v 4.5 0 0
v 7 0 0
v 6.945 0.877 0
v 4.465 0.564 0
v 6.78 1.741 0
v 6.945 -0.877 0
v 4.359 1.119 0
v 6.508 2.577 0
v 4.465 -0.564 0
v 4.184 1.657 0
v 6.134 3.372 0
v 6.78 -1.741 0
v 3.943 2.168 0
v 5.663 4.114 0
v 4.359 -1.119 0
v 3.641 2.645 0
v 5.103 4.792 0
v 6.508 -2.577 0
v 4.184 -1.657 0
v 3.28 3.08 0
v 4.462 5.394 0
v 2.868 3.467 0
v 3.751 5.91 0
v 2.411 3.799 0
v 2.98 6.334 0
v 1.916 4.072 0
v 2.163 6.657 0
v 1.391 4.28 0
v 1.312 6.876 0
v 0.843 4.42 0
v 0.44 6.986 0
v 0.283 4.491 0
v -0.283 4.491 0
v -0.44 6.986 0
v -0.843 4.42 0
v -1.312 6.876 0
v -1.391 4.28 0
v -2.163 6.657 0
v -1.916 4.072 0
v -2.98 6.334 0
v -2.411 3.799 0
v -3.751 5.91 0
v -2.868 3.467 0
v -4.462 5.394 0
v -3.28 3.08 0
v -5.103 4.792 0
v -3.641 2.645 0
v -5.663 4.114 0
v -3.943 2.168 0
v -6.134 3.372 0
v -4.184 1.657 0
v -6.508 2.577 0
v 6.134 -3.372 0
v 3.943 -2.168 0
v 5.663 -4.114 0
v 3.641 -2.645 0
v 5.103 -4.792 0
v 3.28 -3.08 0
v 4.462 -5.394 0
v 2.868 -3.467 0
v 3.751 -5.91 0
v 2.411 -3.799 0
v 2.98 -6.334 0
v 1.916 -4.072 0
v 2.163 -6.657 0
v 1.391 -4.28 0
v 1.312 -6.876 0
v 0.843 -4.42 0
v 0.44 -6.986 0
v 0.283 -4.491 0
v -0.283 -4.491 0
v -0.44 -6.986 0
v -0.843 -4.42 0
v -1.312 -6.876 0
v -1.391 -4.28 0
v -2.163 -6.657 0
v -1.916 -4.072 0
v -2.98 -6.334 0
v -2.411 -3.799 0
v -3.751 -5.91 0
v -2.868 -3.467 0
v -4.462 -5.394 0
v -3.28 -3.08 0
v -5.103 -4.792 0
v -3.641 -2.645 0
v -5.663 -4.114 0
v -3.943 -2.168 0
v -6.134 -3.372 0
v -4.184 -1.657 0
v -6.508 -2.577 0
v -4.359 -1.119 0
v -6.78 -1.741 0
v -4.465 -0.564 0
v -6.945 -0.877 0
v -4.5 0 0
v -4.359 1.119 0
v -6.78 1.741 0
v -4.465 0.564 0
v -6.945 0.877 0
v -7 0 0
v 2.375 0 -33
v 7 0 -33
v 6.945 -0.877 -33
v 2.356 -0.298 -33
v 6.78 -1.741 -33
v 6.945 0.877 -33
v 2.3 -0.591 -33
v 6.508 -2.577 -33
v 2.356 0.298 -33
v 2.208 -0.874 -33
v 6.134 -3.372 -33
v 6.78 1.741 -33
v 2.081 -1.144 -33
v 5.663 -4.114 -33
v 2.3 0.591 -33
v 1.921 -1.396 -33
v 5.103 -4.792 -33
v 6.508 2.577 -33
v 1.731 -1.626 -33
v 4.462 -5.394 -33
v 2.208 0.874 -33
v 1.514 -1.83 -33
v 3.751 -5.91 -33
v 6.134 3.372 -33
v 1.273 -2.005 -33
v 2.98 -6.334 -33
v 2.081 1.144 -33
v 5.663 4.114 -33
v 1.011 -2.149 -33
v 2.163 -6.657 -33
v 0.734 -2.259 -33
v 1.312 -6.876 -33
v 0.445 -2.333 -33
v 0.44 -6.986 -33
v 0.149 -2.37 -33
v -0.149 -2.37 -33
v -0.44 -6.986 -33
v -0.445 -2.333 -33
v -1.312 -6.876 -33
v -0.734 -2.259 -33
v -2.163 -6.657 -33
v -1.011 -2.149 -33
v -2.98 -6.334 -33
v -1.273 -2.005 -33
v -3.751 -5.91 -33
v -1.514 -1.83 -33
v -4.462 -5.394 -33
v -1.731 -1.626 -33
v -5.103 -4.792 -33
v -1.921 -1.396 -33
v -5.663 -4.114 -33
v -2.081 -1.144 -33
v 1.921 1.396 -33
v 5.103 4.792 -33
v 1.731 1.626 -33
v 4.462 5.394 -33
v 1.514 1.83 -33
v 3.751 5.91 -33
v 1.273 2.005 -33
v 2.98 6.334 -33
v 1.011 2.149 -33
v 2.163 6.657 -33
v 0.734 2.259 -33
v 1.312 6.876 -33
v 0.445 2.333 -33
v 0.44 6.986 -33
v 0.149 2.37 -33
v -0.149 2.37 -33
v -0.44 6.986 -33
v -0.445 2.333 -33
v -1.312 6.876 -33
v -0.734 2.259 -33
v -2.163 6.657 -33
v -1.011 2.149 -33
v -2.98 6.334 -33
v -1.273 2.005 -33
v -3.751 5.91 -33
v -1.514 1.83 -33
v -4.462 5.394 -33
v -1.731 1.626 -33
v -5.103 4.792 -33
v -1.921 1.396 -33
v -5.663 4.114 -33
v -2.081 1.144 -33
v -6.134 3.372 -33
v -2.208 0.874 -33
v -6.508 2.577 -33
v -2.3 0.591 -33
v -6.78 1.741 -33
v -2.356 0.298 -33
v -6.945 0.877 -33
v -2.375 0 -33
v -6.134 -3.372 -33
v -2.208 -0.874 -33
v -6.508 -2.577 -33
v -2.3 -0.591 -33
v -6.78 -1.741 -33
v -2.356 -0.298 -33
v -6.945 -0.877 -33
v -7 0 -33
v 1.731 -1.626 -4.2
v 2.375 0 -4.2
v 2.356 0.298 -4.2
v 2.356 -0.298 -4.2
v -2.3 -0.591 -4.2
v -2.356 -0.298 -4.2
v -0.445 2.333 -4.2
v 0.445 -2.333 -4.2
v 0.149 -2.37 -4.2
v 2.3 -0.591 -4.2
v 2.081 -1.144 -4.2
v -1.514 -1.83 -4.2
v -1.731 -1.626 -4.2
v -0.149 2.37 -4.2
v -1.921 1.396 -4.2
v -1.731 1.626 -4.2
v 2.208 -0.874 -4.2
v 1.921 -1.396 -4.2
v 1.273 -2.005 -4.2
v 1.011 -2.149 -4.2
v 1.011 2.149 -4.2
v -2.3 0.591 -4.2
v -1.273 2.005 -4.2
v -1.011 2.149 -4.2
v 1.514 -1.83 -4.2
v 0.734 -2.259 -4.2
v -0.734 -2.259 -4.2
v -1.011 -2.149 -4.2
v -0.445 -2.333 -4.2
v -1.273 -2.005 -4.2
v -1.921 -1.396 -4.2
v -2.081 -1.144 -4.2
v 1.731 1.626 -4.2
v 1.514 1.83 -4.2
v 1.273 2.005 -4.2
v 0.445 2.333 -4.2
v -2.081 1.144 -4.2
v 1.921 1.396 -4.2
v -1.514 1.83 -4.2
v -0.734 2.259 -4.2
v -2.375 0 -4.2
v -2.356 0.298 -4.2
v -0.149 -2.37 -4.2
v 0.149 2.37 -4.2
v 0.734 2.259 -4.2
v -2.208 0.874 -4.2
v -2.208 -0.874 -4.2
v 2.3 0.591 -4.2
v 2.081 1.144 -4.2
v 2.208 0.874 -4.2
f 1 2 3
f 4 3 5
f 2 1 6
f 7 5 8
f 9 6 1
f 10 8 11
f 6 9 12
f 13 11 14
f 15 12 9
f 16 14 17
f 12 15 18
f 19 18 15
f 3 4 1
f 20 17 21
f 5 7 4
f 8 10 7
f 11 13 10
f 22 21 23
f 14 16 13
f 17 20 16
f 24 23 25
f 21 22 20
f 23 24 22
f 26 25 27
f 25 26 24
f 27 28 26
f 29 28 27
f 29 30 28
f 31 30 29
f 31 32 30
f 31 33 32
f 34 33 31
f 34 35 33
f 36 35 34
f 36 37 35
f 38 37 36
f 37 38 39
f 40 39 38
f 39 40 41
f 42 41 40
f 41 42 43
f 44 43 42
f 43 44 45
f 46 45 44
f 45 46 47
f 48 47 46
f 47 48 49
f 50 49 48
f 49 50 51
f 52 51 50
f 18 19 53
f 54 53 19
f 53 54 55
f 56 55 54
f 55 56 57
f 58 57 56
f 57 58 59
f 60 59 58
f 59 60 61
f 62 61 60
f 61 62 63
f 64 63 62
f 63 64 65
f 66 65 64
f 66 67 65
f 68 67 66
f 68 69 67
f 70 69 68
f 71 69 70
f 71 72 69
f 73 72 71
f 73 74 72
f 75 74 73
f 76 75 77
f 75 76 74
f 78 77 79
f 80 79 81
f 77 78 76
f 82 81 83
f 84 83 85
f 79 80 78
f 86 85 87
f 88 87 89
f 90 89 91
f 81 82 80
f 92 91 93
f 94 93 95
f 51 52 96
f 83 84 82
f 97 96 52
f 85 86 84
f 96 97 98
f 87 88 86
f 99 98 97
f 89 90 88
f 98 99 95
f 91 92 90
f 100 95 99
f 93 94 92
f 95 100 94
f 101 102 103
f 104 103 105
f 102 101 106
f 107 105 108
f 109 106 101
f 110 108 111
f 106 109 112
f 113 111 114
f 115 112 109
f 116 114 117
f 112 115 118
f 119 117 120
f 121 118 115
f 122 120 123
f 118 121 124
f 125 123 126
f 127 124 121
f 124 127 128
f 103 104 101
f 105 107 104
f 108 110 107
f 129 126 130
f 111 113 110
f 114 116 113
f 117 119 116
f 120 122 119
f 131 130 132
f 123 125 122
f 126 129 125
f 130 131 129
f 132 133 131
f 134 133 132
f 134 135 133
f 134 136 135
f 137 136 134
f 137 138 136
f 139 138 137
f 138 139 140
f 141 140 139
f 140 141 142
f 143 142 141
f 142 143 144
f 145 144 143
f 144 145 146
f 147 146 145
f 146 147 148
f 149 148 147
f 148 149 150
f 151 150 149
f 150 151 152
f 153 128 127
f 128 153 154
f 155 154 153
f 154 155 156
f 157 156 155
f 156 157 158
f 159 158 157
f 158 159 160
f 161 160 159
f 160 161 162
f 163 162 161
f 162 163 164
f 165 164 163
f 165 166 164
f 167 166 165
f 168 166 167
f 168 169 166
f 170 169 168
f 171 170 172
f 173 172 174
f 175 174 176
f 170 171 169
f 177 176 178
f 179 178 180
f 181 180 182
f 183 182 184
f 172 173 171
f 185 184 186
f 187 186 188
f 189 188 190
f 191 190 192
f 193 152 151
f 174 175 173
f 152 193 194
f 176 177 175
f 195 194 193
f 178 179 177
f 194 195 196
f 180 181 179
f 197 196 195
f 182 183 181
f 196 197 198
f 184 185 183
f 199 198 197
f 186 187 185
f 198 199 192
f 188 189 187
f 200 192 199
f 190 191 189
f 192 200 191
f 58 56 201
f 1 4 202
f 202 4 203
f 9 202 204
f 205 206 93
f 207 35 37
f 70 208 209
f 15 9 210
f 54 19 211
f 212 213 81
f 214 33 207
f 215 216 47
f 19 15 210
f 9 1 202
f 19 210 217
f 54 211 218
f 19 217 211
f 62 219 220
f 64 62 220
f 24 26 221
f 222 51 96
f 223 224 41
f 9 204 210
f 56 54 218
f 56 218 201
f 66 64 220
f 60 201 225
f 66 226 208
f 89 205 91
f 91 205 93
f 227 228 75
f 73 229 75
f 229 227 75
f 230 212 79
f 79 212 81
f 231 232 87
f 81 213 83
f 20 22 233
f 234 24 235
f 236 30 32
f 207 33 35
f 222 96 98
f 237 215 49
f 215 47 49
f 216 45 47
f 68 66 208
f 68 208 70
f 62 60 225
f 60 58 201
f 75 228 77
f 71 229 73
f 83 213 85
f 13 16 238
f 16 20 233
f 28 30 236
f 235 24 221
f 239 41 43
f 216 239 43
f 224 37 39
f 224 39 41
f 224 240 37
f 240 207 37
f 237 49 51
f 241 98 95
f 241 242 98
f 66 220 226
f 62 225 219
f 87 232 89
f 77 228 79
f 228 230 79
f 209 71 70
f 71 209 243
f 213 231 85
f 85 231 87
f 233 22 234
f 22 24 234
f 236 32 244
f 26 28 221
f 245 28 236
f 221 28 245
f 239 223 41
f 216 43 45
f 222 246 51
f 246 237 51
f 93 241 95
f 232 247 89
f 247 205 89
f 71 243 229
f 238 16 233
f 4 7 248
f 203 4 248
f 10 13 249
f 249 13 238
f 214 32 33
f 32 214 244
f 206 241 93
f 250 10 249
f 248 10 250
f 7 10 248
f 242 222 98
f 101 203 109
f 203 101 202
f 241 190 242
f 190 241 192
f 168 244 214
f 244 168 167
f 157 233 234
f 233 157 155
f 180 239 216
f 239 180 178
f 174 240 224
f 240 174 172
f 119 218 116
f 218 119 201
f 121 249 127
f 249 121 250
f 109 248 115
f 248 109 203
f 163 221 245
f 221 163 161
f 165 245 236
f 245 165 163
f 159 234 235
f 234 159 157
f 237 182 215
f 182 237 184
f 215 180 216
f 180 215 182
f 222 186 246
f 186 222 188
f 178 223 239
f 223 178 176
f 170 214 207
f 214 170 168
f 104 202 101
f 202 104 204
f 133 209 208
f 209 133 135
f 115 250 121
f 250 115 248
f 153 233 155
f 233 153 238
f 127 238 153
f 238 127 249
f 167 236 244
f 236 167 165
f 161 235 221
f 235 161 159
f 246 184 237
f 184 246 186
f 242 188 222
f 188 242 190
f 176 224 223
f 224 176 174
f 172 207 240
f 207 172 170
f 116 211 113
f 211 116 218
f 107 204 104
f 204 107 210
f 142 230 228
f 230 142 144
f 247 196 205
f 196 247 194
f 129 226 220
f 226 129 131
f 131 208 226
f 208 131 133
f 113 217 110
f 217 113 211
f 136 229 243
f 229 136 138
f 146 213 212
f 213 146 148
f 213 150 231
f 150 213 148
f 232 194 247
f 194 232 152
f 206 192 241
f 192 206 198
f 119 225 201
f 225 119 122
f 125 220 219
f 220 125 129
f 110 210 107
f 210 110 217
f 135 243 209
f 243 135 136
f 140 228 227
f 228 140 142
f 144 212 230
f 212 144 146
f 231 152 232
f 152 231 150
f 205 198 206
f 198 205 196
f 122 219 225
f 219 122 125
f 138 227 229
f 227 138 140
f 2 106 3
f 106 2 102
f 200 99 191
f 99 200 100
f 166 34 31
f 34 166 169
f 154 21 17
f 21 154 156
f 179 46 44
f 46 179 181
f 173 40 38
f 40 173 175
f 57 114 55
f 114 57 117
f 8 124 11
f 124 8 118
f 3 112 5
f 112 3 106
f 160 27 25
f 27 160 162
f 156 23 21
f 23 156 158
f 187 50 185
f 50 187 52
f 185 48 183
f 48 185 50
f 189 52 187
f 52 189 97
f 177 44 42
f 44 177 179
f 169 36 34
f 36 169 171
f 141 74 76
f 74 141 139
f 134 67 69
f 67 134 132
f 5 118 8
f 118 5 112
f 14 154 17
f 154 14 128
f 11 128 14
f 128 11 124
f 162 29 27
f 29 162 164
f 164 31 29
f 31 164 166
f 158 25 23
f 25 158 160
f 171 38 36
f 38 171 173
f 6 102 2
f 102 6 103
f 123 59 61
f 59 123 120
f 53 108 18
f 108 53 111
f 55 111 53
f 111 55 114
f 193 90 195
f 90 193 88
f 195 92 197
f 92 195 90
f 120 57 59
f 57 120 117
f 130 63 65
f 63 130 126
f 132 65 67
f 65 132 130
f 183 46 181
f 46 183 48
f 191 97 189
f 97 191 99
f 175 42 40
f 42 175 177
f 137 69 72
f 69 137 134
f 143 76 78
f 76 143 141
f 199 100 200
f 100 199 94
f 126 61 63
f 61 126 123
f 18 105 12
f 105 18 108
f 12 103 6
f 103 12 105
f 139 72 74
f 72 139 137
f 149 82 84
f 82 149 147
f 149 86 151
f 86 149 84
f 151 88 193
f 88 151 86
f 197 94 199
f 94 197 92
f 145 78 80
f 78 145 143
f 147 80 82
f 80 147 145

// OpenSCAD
$fn = 50;


difference() {
	union() {
		translate(v = [0, 0, -33.0000000000]) {
			cylinder(h = 33, r = 7.0000000000);
		}
		cylinder(h = 0, r = 10.0000000000);
	}
	union() {
		translate(v = [0, 0, 0]) {
			rotate(a = [0, 0, 0]) {
				difference() {
					union() {
						#translate(v = [0, 0, -33.0000000000]) {
							cylinder(h = 33, r = 2.2500000000);
						}
						#translate(v = [0, 0, -4.2000000000]) {
							cylinder(h = 4.2000000000, r = 7.0000000000, r1 = 2.3750000000, r2 = 4.5000000000);
						}
						#translate(v = [0, 0, -33.0000000000]) {
							cylinder(h = 33, r = 2.3750000000);
						}
						#translate(v = [0, 0, -33.0000000000]) {
							cylinder(h = 33, r = 2.2500000000);
						}
					}
					union();
				}
			}
		}
	}
}
